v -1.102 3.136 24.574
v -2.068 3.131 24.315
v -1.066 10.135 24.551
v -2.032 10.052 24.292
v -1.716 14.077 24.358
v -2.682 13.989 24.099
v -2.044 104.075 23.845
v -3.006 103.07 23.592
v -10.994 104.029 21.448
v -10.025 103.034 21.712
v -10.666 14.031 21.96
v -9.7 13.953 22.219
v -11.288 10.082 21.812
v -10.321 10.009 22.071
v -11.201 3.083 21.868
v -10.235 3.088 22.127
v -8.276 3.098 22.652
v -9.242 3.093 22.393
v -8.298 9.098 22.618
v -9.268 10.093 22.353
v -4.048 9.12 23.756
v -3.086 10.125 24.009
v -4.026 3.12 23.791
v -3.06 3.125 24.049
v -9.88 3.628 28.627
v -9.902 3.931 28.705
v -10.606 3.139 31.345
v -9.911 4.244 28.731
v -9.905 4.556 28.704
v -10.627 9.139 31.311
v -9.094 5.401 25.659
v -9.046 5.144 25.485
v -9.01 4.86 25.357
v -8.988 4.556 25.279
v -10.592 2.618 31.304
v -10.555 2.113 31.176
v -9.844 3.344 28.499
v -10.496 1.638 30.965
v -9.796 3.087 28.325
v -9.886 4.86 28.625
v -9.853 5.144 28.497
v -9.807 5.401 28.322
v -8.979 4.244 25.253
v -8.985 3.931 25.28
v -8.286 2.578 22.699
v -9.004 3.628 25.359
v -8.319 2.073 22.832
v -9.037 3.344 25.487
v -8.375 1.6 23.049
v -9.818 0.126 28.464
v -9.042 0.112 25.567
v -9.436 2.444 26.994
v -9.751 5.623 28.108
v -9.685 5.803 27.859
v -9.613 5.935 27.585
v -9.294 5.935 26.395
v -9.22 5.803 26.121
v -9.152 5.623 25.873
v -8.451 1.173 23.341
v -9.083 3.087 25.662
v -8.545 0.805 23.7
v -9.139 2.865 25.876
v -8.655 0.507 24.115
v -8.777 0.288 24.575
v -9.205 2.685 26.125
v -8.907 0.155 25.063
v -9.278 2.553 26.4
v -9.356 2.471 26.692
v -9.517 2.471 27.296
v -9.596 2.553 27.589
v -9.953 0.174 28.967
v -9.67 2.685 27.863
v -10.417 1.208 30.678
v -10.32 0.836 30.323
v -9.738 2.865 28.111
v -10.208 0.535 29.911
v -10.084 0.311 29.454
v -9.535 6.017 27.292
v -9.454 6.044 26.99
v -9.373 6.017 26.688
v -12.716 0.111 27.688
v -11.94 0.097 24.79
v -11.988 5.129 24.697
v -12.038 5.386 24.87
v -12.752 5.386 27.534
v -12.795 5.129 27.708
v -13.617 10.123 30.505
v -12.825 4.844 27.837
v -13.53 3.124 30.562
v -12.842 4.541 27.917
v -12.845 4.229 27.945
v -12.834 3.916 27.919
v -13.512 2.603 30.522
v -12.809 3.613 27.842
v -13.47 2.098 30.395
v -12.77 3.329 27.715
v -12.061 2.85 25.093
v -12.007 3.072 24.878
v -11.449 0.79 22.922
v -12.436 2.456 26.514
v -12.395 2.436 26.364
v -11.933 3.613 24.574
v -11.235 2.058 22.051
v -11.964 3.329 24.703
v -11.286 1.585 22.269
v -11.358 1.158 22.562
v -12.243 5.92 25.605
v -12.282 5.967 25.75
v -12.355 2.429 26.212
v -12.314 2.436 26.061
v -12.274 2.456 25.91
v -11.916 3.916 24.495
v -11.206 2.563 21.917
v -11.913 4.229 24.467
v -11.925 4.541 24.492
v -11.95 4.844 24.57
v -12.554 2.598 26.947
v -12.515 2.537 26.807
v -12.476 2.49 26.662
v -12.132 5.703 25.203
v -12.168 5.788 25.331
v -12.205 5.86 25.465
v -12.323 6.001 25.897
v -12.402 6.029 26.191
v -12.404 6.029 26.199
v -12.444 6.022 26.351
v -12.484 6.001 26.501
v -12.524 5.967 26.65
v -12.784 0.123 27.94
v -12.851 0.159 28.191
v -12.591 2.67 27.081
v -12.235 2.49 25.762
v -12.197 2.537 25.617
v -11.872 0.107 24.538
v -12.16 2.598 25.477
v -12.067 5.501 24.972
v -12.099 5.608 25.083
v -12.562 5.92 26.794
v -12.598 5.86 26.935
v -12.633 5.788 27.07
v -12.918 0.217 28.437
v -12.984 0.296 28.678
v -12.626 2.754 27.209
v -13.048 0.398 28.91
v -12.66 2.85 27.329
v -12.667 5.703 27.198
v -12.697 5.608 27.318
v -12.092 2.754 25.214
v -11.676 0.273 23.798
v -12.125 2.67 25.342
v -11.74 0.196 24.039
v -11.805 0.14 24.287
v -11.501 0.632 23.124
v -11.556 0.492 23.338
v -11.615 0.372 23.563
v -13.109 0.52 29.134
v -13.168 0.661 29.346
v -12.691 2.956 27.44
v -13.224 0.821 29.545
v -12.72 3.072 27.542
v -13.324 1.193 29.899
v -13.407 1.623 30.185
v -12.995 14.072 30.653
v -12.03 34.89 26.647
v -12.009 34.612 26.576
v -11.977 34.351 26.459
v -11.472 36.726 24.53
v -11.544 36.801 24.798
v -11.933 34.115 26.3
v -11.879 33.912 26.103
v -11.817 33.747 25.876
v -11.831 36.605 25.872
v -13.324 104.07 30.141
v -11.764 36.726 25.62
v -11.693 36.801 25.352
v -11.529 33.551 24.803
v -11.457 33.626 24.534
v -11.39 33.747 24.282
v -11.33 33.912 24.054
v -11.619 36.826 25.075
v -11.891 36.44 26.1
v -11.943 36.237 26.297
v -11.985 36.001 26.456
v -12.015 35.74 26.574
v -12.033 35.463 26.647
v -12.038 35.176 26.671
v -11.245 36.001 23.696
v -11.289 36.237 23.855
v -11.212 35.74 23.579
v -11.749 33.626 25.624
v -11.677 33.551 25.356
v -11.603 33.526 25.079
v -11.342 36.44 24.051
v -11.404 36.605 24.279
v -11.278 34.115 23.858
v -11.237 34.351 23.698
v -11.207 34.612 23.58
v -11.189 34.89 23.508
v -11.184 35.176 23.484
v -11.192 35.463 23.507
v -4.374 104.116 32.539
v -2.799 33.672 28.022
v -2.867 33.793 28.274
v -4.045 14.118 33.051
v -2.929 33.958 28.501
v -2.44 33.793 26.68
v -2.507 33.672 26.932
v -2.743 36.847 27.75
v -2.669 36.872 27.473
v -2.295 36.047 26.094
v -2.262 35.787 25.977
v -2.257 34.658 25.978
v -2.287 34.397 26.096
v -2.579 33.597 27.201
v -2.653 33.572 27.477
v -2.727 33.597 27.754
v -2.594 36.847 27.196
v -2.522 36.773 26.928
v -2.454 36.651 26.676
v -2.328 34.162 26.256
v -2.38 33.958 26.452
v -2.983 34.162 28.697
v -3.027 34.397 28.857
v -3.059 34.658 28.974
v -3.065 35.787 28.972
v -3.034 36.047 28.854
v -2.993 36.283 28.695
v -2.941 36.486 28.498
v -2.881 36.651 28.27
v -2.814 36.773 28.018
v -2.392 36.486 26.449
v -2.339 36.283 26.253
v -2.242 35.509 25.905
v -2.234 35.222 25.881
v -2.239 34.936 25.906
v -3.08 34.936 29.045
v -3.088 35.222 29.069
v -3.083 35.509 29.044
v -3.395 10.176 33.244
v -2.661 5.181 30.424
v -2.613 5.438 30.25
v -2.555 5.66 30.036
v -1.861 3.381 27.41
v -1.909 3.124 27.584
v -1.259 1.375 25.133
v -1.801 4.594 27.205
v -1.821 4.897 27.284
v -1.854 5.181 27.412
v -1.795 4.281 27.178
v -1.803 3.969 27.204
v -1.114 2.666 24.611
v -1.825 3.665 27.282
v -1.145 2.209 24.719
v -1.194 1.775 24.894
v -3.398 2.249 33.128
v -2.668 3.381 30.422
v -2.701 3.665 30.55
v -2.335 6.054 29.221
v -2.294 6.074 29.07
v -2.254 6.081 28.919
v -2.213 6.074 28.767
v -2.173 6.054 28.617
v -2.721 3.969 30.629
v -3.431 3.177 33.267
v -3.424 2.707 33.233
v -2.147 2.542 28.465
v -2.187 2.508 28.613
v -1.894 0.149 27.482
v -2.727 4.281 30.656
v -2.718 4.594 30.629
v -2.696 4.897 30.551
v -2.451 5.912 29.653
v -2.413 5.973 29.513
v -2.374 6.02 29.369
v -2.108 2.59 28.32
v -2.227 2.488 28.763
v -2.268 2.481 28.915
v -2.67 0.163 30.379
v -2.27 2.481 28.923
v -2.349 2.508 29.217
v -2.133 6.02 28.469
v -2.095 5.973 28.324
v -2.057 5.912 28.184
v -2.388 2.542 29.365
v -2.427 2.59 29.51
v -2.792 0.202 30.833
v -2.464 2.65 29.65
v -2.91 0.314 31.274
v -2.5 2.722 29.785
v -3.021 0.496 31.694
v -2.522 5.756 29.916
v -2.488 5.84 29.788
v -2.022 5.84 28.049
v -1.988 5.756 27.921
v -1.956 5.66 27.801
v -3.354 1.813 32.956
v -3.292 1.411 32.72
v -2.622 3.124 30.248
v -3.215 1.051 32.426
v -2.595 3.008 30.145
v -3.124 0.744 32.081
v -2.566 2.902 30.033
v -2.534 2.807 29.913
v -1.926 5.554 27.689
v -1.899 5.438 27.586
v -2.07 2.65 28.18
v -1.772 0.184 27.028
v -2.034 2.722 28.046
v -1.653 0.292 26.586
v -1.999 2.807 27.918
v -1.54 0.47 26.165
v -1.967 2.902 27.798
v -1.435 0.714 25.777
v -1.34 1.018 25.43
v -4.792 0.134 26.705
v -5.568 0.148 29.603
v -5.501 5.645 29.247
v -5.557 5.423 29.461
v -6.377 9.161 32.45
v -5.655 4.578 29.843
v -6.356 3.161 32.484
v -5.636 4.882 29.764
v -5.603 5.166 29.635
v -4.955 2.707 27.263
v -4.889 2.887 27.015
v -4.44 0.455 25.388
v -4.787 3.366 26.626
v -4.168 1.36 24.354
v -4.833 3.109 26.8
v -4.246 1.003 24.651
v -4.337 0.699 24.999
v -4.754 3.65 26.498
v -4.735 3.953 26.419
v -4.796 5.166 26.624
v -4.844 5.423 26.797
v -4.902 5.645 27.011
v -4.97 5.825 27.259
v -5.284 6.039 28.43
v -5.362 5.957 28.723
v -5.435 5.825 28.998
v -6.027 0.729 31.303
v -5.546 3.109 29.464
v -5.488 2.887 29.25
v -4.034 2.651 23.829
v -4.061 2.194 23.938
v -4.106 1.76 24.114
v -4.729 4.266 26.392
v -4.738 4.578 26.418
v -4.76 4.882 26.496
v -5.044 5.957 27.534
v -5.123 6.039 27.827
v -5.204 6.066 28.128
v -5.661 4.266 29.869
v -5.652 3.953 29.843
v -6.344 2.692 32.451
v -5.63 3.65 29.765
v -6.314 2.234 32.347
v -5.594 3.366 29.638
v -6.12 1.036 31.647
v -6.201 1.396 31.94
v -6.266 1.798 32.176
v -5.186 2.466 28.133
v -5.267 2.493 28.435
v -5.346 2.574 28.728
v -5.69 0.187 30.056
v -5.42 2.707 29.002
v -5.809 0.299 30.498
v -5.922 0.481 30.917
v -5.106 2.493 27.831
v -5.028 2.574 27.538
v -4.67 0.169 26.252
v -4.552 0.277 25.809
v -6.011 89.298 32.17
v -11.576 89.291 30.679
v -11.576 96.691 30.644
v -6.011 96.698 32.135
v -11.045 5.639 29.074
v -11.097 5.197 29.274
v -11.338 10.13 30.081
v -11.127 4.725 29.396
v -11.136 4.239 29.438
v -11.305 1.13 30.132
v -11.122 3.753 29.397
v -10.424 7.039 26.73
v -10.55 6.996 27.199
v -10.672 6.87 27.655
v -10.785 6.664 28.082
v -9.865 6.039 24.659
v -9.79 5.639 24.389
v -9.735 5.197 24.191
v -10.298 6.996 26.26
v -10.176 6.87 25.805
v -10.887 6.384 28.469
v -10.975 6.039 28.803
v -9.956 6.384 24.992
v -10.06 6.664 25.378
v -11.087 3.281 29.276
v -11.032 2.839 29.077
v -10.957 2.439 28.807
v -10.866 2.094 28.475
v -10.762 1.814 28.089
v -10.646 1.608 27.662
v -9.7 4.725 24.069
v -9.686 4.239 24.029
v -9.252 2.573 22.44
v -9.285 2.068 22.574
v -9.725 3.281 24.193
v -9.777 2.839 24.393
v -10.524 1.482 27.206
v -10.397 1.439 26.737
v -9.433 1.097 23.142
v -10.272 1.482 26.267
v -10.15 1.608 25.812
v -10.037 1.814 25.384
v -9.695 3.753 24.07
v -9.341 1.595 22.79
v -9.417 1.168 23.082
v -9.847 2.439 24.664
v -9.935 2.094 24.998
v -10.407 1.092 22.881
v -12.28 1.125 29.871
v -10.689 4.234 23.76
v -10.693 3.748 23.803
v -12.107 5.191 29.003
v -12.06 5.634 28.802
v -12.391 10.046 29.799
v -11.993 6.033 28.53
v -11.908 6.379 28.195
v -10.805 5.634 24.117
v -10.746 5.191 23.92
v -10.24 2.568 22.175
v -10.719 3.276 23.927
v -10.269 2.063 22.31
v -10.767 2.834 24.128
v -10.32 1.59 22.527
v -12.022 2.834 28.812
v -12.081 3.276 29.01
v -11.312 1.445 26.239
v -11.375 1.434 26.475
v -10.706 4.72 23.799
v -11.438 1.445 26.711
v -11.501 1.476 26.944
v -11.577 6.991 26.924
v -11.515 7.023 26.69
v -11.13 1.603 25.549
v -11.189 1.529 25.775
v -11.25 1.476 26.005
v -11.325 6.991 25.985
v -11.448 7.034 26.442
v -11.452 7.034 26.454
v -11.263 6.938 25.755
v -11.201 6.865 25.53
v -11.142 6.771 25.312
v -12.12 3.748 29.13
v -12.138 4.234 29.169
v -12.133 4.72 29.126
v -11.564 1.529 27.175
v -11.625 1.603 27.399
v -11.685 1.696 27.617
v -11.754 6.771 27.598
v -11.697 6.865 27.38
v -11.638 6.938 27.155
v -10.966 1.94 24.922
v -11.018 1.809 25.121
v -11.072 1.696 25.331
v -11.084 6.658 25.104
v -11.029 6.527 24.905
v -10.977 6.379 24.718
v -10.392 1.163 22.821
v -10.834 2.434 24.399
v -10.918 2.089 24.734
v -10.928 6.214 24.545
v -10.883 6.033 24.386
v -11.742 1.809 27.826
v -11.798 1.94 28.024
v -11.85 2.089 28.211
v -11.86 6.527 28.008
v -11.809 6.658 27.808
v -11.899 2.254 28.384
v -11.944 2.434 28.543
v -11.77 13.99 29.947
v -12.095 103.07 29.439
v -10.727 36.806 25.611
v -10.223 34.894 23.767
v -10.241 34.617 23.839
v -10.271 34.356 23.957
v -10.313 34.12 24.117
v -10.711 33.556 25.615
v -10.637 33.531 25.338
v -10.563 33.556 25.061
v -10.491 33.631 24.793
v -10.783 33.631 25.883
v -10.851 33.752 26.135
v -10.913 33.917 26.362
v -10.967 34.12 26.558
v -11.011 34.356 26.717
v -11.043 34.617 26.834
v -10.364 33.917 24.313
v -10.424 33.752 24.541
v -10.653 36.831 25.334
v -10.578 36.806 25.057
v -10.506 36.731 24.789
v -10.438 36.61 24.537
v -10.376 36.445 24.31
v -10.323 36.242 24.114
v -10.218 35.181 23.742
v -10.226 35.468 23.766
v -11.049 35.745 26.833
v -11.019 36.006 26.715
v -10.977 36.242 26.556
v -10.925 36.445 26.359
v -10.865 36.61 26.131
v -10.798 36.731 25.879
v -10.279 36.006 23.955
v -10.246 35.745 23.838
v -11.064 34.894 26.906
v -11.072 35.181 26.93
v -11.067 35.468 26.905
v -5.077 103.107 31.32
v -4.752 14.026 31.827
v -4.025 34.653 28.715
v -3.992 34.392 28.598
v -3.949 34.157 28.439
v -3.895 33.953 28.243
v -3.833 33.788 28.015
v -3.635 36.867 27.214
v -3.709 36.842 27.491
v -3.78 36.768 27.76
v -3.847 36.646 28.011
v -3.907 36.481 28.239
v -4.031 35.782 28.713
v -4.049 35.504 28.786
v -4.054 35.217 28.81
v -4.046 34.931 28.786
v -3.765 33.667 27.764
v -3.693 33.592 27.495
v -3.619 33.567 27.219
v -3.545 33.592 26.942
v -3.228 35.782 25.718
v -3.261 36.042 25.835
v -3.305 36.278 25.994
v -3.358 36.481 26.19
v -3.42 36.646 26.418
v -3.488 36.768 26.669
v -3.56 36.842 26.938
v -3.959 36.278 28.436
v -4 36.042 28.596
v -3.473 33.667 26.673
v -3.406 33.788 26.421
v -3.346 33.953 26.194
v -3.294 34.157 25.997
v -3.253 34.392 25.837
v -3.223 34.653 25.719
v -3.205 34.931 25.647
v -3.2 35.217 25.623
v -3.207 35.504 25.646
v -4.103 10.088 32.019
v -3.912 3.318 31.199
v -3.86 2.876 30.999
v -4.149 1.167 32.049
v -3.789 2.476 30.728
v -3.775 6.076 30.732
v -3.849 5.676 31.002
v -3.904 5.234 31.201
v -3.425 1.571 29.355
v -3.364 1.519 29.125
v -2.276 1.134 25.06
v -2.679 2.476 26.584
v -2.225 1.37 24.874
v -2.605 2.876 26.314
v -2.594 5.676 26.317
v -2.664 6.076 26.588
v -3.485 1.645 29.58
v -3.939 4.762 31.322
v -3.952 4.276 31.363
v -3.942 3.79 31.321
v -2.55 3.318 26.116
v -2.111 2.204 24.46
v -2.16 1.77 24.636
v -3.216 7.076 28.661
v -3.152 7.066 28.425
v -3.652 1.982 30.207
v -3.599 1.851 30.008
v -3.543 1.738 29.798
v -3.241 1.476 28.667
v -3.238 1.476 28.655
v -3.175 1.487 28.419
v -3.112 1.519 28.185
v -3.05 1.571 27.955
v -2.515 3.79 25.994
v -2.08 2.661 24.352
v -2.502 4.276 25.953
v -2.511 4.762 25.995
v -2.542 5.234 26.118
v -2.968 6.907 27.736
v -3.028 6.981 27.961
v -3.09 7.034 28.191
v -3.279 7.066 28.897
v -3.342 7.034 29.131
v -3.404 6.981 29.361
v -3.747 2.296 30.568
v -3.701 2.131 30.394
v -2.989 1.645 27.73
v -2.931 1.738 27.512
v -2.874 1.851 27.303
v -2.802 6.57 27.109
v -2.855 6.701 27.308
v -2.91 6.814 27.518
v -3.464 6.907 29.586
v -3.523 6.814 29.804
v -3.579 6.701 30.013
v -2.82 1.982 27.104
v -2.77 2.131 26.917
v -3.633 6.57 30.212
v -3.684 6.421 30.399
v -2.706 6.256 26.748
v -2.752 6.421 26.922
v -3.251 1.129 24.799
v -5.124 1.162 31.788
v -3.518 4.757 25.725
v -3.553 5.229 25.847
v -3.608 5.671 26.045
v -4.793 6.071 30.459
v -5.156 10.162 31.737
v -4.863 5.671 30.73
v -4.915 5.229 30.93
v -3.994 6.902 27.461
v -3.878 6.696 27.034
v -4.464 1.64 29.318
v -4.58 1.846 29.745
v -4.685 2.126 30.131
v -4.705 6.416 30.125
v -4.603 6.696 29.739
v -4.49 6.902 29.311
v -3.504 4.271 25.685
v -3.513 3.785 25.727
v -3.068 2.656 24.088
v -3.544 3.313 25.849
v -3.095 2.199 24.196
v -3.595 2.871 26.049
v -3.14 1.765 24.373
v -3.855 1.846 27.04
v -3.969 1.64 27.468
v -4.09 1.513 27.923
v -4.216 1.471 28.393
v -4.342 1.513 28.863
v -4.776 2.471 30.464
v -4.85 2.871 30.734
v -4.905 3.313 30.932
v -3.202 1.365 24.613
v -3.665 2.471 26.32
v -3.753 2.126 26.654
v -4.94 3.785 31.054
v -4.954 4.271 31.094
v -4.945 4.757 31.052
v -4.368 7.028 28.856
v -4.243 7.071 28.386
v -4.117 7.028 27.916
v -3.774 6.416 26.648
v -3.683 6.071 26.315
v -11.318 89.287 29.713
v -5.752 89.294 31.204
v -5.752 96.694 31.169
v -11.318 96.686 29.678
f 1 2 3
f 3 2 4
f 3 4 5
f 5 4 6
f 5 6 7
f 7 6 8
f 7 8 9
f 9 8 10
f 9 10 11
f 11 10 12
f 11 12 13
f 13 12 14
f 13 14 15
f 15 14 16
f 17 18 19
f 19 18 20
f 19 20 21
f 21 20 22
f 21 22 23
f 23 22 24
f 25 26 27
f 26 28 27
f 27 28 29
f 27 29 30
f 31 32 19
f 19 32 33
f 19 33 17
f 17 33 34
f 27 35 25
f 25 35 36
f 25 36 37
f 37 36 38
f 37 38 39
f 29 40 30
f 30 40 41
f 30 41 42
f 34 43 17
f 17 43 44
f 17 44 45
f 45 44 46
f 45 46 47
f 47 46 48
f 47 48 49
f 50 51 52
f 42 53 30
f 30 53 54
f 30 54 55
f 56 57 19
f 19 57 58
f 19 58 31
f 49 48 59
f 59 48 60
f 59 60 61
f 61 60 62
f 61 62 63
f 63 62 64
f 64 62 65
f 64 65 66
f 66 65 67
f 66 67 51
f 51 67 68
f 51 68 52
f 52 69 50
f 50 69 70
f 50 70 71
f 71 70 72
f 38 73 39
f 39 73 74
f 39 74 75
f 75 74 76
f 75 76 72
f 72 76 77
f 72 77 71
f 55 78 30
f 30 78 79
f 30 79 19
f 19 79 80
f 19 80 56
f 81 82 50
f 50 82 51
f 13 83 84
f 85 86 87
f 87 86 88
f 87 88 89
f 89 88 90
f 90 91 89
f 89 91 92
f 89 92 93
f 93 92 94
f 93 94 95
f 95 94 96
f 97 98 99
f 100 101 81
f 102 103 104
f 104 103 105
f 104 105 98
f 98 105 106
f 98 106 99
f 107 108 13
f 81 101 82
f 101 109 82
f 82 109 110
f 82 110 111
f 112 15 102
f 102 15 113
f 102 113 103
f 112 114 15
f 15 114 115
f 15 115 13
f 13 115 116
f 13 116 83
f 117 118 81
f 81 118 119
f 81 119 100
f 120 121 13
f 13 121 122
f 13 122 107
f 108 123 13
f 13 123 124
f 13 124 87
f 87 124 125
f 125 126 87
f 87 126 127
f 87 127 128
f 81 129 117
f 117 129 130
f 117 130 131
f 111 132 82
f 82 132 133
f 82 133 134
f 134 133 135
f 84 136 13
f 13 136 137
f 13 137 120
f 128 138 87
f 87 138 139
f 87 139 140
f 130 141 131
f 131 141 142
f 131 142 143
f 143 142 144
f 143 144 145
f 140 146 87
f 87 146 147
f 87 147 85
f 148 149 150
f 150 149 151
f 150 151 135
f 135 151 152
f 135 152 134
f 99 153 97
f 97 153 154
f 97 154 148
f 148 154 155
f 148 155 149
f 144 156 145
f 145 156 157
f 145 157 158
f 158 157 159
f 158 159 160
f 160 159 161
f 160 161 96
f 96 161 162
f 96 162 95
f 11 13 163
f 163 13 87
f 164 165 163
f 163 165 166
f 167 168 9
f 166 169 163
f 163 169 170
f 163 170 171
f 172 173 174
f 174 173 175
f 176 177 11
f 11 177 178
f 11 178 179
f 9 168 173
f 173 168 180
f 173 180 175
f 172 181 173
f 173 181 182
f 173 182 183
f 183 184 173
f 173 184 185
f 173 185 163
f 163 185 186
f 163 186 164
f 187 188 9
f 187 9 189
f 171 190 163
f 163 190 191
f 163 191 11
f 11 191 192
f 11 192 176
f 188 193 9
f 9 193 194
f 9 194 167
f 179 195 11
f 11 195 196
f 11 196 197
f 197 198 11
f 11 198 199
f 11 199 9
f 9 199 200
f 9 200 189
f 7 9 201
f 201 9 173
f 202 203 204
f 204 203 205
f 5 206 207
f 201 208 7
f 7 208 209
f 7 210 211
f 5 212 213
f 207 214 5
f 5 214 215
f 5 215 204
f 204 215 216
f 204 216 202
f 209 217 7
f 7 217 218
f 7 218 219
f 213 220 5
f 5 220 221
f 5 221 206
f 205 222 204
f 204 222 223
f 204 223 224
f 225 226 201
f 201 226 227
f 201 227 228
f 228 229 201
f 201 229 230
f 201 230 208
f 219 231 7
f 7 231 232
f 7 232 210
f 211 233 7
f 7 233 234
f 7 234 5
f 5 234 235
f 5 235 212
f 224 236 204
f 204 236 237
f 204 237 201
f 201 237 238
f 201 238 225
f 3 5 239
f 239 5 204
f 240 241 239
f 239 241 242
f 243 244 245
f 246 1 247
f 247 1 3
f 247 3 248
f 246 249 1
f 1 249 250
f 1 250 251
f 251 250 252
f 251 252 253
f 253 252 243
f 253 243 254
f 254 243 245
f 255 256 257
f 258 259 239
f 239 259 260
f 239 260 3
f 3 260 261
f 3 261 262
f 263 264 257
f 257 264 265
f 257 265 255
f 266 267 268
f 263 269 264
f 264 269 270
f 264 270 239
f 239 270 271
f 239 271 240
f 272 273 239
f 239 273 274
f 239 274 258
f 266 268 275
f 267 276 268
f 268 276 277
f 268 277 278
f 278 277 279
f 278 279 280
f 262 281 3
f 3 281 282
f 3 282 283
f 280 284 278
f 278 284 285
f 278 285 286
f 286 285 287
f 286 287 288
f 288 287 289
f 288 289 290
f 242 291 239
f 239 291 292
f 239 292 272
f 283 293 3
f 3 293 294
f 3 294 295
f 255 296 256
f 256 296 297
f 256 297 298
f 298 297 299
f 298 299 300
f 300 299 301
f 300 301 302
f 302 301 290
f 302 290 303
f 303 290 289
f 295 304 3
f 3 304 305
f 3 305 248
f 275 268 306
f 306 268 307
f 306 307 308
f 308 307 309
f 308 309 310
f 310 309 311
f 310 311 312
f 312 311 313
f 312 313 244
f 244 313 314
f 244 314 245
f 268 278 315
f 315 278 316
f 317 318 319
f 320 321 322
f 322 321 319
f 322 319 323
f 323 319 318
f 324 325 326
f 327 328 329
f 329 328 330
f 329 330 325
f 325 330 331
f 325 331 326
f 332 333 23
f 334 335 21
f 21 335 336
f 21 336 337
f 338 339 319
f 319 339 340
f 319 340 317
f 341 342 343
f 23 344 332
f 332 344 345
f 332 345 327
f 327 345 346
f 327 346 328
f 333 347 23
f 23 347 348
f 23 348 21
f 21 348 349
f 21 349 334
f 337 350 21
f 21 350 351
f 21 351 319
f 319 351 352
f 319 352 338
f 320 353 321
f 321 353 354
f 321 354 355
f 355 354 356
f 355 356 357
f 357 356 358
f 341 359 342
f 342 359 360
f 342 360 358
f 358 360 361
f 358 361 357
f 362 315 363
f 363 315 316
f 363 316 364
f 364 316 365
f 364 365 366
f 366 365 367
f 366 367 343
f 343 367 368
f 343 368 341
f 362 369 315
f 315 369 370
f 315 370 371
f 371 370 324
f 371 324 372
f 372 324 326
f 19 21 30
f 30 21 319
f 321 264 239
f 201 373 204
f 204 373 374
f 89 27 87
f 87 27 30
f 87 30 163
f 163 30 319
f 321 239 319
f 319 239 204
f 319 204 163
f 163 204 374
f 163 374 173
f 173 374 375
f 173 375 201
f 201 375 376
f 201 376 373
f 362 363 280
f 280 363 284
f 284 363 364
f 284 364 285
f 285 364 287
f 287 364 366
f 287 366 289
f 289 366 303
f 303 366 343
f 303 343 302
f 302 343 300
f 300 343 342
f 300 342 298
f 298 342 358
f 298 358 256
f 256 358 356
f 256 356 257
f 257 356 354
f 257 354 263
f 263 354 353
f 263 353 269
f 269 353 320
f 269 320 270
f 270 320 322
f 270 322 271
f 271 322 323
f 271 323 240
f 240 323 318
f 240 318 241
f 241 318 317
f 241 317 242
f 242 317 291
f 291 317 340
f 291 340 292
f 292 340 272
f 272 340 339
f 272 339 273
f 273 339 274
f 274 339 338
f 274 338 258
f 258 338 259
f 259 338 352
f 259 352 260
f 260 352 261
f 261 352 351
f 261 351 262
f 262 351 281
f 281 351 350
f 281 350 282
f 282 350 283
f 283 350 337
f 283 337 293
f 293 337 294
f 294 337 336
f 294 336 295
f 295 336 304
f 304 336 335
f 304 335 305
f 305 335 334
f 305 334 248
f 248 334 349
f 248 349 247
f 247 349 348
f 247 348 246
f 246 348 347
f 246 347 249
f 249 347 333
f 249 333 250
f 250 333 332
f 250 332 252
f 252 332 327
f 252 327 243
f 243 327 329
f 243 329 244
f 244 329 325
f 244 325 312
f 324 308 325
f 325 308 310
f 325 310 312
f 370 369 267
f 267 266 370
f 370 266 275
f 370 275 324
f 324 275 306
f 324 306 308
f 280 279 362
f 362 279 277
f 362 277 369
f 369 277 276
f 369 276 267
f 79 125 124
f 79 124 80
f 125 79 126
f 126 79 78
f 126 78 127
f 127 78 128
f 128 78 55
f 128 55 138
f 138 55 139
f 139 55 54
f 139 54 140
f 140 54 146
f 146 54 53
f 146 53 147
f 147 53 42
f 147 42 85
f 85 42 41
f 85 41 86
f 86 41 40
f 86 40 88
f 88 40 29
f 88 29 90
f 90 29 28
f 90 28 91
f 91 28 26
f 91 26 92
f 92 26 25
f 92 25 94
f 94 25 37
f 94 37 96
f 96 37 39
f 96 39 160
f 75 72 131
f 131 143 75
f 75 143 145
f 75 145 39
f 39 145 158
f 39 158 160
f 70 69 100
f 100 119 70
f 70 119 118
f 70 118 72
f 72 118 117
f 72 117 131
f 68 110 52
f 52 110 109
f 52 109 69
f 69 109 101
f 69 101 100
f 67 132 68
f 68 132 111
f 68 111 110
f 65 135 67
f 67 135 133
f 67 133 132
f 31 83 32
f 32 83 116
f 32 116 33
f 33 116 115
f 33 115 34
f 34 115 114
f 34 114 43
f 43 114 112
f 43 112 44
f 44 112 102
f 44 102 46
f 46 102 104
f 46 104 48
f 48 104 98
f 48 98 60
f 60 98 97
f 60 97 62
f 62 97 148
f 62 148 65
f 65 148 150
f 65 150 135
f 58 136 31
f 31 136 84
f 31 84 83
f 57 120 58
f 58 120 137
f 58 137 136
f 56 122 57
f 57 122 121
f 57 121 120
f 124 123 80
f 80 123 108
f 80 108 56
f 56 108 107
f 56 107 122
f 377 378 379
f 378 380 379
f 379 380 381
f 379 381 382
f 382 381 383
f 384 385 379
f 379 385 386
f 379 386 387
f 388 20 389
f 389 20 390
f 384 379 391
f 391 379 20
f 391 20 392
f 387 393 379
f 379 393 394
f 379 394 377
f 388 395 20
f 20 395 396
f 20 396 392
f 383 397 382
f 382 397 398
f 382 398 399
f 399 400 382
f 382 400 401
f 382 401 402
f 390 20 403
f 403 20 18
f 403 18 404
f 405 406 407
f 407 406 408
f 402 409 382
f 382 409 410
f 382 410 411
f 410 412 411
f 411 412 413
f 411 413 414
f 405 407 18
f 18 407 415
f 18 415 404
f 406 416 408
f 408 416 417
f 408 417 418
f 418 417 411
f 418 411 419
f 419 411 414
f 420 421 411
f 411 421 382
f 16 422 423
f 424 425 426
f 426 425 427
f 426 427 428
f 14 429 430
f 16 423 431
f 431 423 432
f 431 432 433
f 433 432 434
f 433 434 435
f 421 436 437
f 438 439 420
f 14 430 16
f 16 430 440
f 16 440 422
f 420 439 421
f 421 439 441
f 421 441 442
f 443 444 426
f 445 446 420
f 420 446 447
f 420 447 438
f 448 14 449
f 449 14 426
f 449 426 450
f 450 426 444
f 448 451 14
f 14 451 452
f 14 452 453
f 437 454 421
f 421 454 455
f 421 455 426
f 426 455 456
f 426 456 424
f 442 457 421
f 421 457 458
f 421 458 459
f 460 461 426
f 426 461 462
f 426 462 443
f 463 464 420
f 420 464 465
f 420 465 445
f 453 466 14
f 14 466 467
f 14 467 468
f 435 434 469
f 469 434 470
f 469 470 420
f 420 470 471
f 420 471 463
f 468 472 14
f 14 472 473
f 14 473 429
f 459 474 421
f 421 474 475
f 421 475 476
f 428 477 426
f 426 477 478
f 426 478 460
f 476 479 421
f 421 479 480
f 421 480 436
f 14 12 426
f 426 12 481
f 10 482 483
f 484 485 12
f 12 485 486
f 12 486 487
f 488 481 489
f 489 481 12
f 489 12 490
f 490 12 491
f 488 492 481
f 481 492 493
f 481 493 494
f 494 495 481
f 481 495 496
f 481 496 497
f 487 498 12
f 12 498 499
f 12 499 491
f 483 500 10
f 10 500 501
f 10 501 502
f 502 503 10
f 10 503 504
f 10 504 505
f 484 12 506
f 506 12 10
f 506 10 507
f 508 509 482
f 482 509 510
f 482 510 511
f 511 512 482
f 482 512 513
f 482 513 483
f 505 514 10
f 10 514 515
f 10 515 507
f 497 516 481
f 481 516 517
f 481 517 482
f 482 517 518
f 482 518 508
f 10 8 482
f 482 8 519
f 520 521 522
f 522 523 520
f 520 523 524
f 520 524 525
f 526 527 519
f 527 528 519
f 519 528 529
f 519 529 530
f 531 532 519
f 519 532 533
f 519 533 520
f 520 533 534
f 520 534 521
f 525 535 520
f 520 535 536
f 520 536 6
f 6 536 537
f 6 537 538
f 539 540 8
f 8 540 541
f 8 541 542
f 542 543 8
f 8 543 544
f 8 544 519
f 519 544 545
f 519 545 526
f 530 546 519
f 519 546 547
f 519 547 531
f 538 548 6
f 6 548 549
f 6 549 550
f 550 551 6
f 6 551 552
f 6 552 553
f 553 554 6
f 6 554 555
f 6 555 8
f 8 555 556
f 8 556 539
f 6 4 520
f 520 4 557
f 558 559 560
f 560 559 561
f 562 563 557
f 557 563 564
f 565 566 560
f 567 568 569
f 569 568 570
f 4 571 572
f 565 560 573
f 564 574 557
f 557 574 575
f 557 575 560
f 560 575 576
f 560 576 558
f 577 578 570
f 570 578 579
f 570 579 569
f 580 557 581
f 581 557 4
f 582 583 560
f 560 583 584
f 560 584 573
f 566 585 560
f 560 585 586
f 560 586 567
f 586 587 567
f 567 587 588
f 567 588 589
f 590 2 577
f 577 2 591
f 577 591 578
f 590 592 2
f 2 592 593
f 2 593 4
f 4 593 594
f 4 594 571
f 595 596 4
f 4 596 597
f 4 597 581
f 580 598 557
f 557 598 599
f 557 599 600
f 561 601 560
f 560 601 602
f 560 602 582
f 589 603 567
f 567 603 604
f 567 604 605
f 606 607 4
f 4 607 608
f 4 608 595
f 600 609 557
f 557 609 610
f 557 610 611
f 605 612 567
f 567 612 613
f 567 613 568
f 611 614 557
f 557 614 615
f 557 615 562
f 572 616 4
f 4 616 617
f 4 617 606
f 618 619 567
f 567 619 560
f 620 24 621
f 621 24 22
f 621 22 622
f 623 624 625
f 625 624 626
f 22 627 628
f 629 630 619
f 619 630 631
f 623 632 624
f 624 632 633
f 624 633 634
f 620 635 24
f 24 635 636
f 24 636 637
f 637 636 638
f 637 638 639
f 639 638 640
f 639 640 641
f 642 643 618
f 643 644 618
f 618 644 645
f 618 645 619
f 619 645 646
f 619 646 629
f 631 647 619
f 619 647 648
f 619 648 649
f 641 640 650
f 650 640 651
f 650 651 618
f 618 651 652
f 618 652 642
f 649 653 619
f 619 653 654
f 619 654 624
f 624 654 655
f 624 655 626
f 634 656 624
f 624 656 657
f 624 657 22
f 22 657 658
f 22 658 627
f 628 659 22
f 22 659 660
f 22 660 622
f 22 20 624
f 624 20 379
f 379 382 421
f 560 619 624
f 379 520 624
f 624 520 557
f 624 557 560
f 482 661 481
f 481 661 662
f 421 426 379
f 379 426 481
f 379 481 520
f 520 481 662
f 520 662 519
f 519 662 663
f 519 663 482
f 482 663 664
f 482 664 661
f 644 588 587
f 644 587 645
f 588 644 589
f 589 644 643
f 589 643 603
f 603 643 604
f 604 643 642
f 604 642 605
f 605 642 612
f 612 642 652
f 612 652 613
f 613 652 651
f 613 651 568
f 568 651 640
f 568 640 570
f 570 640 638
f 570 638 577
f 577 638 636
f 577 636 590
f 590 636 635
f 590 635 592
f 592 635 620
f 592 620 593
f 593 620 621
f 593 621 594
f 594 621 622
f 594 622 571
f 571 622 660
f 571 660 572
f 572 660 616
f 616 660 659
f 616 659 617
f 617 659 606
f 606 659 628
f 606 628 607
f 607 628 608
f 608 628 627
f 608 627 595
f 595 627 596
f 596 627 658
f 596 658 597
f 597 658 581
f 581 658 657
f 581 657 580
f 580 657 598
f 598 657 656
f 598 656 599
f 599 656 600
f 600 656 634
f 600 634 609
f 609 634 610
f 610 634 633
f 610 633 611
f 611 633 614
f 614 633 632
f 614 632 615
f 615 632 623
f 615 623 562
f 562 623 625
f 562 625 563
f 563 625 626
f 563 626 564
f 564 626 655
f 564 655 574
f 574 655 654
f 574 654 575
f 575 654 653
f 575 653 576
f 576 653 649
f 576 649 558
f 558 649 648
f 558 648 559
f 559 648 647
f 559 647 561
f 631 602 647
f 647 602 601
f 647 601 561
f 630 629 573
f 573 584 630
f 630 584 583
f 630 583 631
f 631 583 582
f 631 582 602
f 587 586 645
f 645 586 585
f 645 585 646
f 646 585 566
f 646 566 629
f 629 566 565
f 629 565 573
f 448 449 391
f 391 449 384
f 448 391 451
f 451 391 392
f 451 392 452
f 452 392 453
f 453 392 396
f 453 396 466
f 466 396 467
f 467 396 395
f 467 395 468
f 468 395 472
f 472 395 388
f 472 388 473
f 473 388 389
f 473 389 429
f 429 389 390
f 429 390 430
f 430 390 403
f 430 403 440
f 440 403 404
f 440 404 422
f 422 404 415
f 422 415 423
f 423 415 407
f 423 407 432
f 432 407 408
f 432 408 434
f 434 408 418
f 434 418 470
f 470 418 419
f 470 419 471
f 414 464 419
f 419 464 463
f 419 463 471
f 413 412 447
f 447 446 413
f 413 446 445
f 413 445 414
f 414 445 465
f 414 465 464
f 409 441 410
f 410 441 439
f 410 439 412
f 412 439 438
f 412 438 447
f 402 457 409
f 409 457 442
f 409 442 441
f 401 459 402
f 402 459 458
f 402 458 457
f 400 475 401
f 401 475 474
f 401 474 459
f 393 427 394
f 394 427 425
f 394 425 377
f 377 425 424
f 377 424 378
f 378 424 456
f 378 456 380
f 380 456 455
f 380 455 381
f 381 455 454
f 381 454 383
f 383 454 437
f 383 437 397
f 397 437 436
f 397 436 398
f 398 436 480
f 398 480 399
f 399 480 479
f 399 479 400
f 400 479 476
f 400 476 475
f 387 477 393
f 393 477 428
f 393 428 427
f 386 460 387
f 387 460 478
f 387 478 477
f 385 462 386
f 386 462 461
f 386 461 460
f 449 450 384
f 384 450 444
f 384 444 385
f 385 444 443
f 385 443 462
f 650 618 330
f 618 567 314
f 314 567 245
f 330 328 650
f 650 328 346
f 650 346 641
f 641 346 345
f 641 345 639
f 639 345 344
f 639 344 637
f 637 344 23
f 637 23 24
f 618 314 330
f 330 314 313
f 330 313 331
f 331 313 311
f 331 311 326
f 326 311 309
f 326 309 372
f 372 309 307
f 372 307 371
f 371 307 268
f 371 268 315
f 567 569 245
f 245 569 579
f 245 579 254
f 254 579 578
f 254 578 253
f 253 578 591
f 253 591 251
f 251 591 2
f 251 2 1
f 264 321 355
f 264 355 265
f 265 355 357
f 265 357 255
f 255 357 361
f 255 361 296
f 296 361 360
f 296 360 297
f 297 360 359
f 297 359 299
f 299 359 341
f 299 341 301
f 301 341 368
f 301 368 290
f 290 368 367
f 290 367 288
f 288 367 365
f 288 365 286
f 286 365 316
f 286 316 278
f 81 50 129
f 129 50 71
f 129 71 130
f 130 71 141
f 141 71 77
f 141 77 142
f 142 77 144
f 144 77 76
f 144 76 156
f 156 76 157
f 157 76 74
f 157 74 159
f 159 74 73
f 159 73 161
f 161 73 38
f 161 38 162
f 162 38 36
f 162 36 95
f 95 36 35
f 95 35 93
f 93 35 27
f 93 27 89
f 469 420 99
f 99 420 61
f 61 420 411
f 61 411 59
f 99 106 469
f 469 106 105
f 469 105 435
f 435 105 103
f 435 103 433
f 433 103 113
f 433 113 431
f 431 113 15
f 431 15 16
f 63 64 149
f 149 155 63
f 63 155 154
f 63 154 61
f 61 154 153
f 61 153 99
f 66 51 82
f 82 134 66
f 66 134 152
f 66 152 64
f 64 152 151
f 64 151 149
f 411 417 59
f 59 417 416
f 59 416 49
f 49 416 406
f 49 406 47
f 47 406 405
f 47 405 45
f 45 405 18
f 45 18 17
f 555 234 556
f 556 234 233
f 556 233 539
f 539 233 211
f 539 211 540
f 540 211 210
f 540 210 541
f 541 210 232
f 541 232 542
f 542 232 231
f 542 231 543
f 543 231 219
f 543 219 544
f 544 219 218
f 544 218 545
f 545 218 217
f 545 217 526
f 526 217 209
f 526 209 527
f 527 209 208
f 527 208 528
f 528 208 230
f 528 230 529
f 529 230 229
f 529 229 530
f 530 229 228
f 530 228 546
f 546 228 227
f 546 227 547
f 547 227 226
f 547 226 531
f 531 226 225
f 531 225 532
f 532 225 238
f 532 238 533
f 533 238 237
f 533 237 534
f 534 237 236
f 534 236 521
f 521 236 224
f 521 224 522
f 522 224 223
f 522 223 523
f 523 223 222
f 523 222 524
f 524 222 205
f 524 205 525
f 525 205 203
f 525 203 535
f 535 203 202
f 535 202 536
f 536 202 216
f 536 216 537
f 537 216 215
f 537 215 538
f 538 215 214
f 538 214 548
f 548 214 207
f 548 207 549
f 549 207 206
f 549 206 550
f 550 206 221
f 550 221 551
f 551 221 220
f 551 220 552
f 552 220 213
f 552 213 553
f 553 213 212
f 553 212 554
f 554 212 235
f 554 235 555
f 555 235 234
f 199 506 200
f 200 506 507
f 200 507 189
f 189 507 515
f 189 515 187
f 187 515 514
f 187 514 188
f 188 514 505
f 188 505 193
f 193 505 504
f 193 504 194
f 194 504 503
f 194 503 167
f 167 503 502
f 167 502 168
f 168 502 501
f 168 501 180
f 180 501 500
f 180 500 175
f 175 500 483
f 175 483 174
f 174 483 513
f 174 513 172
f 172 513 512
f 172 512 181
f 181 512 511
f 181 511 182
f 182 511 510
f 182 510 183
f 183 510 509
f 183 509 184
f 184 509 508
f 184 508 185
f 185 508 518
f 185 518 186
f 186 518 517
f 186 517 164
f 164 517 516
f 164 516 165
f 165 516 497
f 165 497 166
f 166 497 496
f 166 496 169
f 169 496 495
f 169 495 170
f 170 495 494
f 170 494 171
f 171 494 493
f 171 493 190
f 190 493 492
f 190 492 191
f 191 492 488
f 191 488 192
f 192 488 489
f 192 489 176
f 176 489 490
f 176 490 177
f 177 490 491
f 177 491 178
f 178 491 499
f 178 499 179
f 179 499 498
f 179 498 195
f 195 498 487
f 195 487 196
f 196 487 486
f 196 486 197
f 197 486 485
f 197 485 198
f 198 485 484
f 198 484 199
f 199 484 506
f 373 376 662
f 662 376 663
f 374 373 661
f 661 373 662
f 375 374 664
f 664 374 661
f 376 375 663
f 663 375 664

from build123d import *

# Parameters (mm, degrees)
BOSS_EXTRUDE1_DEPTH = 9
SKETCH2_R           = 1.8
CUT_EXTRUDE1_DEPTH  = 11.5
SHELL1_T            = -1
FILLET3_R           = 3
SKETCH5_R           = 1.65
CUT_EXTRUDE4_DEPTH  = 16
SKETCH6_W           = 5.761789727
SKETCH6_H           = 7.4
CUT_EXTRUDE5_DEPTH  = 3


with BuildPart() as part:
    # Sketch1 → Boss-Extrude1 (new body)
    with BuildSketch(Plane(origin=(-8.550148724, 0.150483818, 31.909921865), x_dir=(0.9659203418587706, 0.0049942121419566075, 0.2587913271895271), z_dir=(-0.2588138443395903, 0.004555159989206847, 0.96591647904756))):
        Polygon((-2.116672777, -0.00038458), (-5.116672777, -0.00038458), (-5.208111757, 9.999197357), (-4.549568011, 13.944614969), (-4.549568011, 103.944614969), (4.716222456, 103.944614969), (4.716222456, 13.944614969), (5.374766202, 9.999197357), (5.283327223, -0.00038458), (2.283327223, -0.00038458), (2.283327223, 8.99961542), (-2.116672777, 8.99961542), align=None)
    extrude(amount=-BOSS_EXTRUDE1_DEPTH)

    # Sketch2 → Cut-Extrude1 (cut, symmetric)
    with BuildSketch(Plane(origin=(-2.044537293, -0.010571113, -0.547776557), x_dir=(0.2588168701543083, -0.005411250453060186, -0.9659112516644903), z_dir=(0.9659203418587706, 0.0049942121419806335, 0.2587913271895269))):
        with Locations(Location((-28.539422387, 4.100183989, 0), (0, 0, 180.310047193))):
            Circle(SKETCH2_R)
    extrude(amount=CUT_EXTRUDE1_DEPTH, both=True, mode=Mode.SUBTRACT)

    # Shell1
    shell1_openings = [part.faces().sort_by_distance(p)[0] for p in [
        (-6.334444908, 53.359699464, 22.935106903),
    ]]
    offset(amount=SHELL1_T, openings=shell1_openings, kind=Kind.INTERSECTION)

    # Fillet3
    # the kernel refuses this fillet: 3 mm, written as the material it takes off along each edge
    with BuildSketch(Plane(origin=(-3.35028205, 0.176984725, 33.303082451), x_dir=(0.2588138443395903, -0.004555159989206649, -0.9659164790475598), z_dir=(-0.9659203418587717, -0.004994212141671299, -0.25879132718952874))) as fillet3_piece_1:
        with BuildLine():
            CenterArc((FILLET3_R, -FILLET3_R), FILLET3_R, 90, 90)
            Line((0, -FILLET3_R), (0, 0))
            Line((0, 0), (FILLET3_R, 0))
        make_face()
    extrude(amount=18, mode=Mode.SUBTRACT)
    with BuildSketch(Plane(origin=(-1.020957451, 0.135988285, 24.609834139), x_dir=(-0.25881384433959026, 0.004555159989206952, 0.9659164790475598), z_dir=(-0.9659203418587717, -0.004994212141671299, -0.25879132718952874)), Plane(origin=(6.126853079, 0.172945455, 26.52488996), x_dir=(-0.25881384433959026, 0.004555159989206913, 0.9659164790475598), z_dir=(-0.9659203418587694, -0.004994212142289673, -0.2587913271895252)), Plane(origin=(3.797528479, 0.213941895, 35.218138272), x_dir=(-0.0036451559089296618, 0.9999771539203036, -0.005692492937989095), z_dir=(-0.9659203418587694, -0.004994212142289673, -0.2587913271895252))) as fillet3_piece_2:
        with BuildLine():
            CenterArc((FILLET3_R, FILLET3_R), FILLET3_R, 180, 90)
            Line((0, FILLET3_R), (0, 0))
            Line((0, 0), (FILLET3_R, 0))
        make_face()
    extrude(amount=18, mode=Mode.SUBTRACT)

    # Sketch5 → Cut-Extrude4 (cut)
    with BuildSketch(Plane(origin=(4.555495207, 0.023553815, 1.220517469), x_dir=(0.2587878680955358, 0.0013380415103731802, -0.9659332528552292), z_dir=(0.9659203418587695, 0.0049942121422931664, 0.25879132718952524))):
        with Locations(Location((-27.180645186, 35.235580785, 0), (0, 0, 359.92333489))):
            Circle(SKETCH5_R)
    extrude(amount=-CUT_EXTRUDE4_DEPTH, mode=Mode.SUBTRACT)

    # Sketch6 → Cut-Extrude5 (cut)
    with BuildSketch(Plane(origin=(-8.550148724, 0.150483818, 31.909921865), x_dir=(0.9659272198142892, 0.0012205251536603987, 0.25881096642180224), z_dir=(-0.2588138443395908, 0.0045551599892071715, 0.9659164790475597))):
        with Locations((-0.252081359, 92.845441705)):
            Rectangle(SKETCH6_W, SKETCH6_H)
    extrude(amount=-CUT_EXTRUDE5_DEPTH, mode=Mode.SUBTRACT)


solid = part.part
